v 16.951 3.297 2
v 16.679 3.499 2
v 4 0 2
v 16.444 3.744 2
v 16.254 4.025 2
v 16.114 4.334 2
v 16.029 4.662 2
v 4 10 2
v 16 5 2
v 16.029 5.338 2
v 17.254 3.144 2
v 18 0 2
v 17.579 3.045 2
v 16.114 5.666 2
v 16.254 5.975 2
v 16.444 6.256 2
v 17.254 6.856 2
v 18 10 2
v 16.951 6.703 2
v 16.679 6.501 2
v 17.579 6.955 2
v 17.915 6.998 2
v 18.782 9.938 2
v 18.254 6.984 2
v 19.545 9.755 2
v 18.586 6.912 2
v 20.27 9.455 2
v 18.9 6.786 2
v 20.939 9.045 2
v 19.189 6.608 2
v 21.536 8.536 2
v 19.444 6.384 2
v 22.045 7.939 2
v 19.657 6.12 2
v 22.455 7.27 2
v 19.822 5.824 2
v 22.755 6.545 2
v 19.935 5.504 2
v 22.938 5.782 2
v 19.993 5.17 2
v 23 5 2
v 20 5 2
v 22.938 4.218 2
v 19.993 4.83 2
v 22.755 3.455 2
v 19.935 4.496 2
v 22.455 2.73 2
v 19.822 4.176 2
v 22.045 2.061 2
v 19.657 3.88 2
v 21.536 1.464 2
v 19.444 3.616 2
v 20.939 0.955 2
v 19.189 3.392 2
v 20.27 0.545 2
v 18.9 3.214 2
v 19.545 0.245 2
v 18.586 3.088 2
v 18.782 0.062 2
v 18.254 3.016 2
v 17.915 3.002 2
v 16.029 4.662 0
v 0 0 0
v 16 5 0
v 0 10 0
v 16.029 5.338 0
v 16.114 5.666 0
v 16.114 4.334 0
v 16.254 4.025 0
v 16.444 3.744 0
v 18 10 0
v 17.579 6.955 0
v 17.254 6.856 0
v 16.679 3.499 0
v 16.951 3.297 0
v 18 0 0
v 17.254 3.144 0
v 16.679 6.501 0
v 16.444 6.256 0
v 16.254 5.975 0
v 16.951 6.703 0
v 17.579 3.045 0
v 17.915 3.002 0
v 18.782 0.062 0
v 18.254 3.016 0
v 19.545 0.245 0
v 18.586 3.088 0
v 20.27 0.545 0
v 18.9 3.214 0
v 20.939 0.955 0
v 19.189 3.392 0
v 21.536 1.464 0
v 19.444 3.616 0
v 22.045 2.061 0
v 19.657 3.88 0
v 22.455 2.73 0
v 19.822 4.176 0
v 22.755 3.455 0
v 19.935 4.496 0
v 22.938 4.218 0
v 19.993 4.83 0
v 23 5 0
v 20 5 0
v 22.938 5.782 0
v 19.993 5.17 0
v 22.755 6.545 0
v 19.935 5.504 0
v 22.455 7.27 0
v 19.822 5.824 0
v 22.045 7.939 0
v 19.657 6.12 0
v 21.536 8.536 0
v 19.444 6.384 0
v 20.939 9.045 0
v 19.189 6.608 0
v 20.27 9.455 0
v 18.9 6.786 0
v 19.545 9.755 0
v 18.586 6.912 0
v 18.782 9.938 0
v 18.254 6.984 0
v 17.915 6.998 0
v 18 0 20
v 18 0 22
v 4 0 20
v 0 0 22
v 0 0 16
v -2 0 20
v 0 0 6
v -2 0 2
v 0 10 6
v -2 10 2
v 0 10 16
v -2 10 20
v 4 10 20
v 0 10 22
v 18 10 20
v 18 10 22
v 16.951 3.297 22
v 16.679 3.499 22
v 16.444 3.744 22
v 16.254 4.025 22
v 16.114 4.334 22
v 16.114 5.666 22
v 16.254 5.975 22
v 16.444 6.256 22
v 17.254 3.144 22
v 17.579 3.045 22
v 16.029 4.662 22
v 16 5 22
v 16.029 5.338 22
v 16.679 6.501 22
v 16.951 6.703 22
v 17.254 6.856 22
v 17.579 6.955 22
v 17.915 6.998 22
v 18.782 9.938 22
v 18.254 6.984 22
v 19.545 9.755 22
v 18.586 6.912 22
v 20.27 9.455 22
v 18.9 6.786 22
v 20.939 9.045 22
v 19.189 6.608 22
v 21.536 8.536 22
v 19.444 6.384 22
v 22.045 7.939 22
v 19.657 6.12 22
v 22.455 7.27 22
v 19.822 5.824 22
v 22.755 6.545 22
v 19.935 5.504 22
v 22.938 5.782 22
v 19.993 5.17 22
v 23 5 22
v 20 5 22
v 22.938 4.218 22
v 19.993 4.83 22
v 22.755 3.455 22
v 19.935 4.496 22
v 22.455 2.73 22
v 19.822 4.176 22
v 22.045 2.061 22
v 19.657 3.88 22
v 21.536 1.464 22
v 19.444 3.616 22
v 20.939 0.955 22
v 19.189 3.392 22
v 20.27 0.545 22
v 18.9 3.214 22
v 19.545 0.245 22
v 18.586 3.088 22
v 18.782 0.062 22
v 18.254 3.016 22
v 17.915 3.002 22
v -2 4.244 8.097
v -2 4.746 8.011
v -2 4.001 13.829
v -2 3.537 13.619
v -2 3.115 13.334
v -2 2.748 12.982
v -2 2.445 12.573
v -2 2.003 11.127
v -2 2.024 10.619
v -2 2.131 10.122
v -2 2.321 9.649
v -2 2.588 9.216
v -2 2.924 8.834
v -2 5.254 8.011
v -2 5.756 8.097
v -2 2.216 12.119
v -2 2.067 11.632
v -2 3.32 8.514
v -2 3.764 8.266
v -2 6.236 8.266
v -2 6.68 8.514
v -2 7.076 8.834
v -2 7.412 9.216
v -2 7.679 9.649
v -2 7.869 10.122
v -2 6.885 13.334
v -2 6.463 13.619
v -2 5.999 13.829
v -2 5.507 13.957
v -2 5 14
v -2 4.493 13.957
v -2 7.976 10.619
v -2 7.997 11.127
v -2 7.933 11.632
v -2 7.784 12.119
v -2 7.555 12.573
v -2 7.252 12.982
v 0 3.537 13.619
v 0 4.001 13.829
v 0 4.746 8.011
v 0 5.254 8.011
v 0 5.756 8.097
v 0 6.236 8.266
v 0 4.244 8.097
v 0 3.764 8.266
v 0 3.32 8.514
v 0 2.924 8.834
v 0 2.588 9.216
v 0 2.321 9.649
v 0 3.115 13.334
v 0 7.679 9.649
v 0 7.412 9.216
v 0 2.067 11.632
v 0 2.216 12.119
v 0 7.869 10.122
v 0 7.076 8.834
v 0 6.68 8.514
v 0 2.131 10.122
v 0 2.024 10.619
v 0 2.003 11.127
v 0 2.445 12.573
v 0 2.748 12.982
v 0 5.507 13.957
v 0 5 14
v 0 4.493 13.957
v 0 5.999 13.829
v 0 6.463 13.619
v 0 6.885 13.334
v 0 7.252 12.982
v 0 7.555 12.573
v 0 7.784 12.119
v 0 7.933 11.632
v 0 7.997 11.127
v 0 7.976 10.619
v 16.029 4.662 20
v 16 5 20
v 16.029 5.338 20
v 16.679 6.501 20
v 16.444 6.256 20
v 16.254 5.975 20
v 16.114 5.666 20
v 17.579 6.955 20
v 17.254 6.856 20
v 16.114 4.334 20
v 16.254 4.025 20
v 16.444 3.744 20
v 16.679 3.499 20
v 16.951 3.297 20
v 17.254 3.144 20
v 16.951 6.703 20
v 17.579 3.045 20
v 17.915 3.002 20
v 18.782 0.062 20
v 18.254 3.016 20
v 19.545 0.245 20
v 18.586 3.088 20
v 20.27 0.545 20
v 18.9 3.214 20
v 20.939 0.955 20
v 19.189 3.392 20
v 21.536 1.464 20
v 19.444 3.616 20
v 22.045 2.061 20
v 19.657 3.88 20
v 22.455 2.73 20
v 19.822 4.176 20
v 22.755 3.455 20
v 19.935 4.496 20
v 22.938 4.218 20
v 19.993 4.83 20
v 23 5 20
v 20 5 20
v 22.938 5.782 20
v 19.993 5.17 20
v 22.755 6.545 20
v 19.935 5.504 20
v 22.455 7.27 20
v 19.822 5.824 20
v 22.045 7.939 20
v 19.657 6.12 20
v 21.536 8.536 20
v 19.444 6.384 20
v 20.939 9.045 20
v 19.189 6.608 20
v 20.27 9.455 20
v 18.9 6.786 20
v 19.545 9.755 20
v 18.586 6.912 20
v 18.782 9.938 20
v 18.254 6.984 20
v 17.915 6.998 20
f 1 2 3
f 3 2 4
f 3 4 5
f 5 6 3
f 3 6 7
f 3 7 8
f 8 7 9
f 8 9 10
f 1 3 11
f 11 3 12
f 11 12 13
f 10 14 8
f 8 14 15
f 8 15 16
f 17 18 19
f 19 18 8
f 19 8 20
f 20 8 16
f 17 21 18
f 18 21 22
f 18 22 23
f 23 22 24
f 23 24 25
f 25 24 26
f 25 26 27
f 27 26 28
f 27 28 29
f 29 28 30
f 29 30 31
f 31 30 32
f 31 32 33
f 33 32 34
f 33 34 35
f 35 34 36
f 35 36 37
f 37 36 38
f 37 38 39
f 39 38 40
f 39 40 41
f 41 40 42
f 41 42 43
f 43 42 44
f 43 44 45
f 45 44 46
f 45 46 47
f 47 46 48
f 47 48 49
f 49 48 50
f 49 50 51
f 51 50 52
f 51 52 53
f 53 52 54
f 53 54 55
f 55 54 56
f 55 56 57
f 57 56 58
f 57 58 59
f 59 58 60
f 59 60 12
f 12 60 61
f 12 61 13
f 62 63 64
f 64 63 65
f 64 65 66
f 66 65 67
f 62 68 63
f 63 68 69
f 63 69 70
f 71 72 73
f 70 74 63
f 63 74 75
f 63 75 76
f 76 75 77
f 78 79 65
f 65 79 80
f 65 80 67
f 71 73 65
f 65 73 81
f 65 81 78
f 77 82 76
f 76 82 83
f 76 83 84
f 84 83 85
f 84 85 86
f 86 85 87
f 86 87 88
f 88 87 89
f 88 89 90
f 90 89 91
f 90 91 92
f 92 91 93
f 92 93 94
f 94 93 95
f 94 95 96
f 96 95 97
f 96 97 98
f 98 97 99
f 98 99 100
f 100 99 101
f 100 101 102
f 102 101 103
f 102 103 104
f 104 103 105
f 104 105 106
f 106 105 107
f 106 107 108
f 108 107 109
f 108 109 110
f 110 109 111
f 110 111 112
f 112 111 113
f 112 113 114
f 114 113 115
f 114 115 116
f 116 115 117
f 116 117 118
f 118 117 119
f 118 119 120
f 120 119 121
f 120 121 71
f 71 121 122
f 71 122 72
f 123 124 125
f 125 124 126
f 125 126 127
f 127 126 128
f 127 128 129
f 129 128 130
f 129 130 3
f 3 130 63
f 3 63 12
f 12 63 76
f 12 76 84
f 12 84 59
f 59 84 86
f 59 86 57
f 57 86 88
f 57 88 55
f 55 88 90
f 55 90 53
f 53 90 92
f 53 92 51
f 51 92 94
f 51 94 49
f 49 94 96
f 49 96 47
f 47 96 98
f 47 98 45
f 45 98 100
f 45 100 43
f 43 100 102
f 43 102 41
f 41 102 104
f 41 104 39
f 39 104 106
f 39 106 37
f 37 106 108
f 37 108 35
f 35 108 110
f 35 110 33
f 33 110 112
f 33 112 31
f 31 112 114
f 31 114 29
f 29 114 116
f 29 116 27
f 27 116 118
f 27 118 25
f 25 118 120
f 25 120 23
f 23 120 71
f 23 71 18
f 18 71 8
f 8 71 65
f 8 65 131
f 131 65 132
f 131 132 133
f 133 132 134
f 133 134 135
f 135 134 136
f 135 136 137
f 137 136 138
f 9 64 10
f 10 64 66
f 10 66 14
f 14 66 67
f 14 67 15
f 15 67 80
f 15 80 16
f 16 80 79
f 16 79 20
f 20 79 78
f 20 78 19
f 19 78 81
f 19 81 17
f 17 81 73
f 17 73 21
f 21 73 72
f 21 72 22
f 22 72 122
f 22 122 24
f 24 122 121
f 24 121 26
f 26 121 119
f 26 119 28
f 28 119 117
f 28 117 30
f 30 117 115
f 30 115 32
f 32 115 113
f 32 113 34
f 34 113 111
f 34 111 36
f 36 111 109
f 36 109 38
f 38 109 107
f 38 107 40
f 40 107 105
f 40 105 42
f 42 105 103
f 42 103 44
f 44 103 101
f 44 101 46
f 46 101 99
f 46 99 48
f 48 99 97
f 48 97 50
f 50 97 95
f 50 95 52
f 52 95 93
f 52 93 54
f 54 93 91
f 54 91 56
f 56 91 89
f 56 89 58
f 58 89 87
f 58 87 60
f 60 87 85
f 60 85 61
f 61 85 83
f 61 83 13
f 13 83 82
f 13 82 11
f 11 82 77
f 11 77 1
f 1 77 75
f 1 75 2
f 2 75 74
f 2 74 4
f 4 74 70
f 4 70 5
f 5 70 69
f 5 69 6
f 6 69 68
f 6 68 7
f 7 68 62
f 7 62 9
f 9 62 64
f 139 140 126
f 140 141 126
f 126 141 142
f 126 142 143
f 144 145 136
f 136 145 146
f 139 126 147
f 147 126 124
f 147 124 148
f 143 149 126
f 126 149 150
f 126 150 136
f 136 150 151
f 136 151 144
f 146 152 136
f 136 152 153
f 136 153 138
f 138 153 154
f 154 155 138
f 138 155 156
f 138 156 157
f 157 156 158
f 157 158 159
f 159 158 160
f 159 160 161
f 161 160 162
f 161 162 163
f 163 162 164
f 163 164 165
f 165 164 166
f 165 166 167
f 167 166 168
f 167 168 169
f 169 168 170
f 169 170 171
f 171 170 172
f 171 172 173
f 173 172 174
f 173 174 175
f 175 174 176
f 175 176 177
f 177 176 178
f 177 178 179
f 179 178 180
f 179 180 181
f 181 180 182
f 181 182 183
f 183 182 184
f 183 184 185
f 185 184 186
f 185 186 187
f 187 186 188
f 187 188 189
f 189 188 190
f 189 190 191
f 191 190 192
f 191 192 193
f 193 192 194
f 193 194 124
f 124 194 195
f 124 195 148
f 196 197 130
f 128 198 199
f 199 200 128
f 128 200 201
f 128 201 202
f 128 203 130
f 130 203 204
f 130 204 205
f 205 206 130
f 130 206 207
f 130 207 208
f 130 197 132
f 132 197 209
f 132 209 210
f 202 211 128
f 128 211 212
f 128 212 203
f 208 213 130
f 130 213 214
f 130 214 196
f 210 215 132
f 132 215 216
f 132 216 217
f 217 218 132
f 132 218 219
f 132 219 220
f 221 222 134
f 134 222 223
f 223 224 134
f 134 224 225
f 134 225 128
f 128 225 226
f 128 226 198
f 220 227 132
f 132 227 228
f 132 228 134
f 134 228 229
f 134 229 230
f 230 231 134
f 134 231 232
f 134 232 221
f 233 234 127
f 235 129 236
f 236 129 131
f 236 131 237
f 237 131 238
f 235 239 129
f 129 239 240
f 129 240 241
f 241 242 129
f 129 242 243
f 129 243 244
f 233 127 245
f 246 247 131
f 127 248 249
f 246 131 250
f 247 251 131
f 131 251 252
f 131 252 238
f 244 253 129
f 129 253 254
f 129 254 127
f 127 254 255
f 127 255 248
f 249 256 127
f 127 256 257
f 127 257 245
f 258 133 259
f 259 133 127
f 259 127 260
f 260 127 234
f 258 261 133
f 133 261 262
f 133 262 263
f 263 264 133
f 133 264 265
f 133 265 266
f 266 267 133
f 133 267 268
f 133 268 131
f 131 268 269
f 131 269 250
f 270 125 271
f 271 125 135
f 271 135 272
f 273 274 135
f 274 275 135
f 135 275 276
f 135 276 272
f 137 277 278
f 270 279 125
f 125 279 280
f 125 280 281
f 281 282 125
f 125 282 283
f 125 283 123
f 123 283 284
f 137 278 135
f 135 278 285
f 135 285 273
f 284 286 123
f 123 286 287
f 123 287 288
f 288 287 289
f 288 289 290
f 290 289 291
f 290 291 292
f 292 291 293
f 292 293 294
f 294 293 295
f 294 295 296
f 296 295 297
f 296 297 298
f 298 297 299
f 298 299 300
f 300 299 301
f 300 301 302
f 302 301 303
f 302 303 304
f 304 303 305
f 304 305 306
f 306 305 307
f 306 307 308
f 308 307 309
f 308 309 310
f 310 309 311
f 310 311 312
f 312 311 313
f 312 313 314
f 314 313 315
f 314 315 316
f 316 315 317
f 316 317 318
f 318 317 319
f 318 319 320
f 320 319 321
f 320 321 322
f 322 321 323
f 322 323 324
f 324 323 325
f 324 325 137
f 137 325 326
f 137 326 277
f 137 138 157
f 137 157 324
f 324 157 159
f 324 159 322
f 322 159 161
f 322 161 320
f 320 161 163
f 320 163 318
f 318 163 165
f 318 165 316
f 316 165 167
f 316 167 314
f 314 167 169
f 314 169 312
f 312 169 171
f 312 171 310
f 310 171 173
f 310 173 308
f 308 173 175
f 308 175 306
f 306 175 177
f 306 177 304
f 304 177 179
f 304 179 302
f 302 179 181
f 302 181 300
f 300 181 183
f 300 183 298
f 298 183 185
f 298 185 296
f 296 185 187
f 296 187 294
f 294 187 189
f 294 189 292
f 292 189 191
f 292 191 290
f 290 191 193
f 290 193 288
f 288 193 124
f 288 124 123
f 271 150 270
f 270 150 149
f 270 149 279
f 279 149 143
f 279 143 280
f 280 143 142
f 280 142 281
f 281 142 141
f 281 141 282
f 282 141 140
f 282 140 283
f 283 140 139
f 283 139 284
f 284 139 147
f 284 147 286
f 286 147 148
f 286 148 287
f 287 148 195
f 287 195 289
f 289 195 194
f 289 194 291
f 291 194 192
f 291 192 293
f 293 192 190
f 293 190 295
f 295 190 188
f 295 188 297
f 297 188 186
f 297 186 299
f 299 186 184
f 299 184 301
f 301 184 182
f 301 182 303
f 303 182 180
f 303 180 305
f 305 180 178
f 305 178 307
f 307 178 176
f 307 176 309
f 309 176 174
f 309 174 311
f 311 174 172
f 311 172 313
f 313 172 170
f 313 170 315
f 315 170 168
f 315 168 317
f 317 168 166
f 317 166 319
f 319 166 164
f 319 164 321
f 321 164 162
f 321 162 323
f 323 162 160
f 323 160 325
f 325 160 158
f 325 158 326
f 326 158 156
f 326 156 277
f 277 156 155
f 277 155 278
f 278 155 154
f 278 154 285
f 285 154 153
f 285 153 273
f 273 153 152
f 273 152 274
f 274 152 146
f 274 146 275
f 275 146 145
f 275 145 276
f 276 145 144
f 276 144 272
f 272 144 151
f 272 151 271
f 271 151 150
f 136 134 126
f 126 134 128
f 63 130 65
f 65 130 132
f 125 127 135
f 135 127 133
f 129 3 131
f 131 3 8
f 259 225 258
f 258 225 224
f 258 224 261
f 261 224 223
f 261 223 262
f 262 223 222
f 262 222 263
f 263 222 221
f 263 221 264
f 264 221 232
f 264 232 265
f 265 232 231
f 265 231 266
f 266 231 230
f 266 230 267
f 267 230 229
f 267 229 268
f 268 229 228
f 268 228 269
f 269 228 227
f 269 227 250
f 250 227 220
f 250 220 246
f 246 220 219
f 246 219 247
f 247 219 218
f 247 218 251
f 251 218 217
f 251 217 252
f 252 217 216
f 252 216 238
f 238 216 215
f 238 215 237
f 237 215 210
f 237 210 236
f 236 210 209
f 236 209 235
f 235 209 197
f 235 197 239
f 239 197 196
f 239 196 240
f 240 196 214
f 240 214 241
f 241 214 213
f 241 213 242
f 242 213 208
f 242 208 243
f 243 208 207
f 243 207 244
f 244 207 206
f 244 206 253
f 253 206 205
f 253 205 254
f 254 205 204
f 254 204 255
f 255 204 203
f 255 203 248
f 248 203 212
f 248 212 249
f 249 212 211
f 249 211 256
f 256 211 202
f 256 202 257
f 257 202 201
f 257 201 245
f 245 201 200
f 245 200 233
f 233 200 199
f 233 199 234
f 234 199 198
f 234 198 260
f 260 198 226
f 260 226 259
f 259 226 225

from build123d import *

# Parameters (mm, degrees)
SKETCH_1_R          = 2
EXTRUDE_1_DEPTH     = 2
SKETCH_6_W          = 22
SKETCH_6_H          = 10
EXTRUDE_5_DEPTH     = 2
CHAMFER_2_SIZE      = 2
CHAMFER_3_SIZE      = 4
SKETCH_7_R          = 3
CUT_EXTRUDE_2_DEPTH = 35.770677301


with BuildPart() as part:
    # 草图1 → 凸台-拉伸1 (new body)
    with BuildSketch(Plane.XY):
        with BuildLine():
            Line((0, 0), (18, 0))
            ThreePointArc((18, 0), (23, 5), (18, 10))
            Line((18, 10), (0, 10))
            Line((0, 10), (0, 0))
        make_face()
        with Locations((18, 5)):
            Circle(SKETCH_1_R, mode=Mode.SUBTRACT)
    extrude(amount=EXTRUDE_1_DEPTH)


with BuildPart() as body_2:
    # 镜向1: mirrored copy
    add(part.part.mirror(Plane.XY.offset(11)))


with BuildPart() as part_1:
    add(part.part)

    add(body_2.part)  # 凸台-拉伸5 merges body 2
    # 草图6 → 凸台-拉伸5 (add)
    with BuildSketch(Plane.ZY):
        with Locations((11, 5)):
            Rectangle(SKETCH_6_W, SKETCH_6_H)
    extrude(amount=EXTRUDE_5_DEPTH)

    # 倒角2
    chamfer_2_edges = [part_1.edges().sort_by_distance(p)[0] for p in [
        (-2, 5, 0),
        (-2, 5, 22),
    ]]
    chamfer(chamfer_2_edges, length=CHAMFER_2_SIZE)

    # 倒角3
    chamfer_3_edges = [part_1.edges().sort_by_distance(p)[0] for p in [
        (0, 5, 20),
        (0, 5, 2),
    ]]
    chamfer(chamfer_3_edges, length=CHAMFER_3_SIZE)

    # 草图7 → 切除-拉伸2 (cut, through all)
    with BuildSketch(Plane.ZY.offset(2)):
        with Locations((11, 5)):
            Circle(SKETCH_7_R)
    extrude(amount=-CUT_EXTRUDE_2_DEPTH, mode=Mode.SUBTRACT)


solid = part_1.part
